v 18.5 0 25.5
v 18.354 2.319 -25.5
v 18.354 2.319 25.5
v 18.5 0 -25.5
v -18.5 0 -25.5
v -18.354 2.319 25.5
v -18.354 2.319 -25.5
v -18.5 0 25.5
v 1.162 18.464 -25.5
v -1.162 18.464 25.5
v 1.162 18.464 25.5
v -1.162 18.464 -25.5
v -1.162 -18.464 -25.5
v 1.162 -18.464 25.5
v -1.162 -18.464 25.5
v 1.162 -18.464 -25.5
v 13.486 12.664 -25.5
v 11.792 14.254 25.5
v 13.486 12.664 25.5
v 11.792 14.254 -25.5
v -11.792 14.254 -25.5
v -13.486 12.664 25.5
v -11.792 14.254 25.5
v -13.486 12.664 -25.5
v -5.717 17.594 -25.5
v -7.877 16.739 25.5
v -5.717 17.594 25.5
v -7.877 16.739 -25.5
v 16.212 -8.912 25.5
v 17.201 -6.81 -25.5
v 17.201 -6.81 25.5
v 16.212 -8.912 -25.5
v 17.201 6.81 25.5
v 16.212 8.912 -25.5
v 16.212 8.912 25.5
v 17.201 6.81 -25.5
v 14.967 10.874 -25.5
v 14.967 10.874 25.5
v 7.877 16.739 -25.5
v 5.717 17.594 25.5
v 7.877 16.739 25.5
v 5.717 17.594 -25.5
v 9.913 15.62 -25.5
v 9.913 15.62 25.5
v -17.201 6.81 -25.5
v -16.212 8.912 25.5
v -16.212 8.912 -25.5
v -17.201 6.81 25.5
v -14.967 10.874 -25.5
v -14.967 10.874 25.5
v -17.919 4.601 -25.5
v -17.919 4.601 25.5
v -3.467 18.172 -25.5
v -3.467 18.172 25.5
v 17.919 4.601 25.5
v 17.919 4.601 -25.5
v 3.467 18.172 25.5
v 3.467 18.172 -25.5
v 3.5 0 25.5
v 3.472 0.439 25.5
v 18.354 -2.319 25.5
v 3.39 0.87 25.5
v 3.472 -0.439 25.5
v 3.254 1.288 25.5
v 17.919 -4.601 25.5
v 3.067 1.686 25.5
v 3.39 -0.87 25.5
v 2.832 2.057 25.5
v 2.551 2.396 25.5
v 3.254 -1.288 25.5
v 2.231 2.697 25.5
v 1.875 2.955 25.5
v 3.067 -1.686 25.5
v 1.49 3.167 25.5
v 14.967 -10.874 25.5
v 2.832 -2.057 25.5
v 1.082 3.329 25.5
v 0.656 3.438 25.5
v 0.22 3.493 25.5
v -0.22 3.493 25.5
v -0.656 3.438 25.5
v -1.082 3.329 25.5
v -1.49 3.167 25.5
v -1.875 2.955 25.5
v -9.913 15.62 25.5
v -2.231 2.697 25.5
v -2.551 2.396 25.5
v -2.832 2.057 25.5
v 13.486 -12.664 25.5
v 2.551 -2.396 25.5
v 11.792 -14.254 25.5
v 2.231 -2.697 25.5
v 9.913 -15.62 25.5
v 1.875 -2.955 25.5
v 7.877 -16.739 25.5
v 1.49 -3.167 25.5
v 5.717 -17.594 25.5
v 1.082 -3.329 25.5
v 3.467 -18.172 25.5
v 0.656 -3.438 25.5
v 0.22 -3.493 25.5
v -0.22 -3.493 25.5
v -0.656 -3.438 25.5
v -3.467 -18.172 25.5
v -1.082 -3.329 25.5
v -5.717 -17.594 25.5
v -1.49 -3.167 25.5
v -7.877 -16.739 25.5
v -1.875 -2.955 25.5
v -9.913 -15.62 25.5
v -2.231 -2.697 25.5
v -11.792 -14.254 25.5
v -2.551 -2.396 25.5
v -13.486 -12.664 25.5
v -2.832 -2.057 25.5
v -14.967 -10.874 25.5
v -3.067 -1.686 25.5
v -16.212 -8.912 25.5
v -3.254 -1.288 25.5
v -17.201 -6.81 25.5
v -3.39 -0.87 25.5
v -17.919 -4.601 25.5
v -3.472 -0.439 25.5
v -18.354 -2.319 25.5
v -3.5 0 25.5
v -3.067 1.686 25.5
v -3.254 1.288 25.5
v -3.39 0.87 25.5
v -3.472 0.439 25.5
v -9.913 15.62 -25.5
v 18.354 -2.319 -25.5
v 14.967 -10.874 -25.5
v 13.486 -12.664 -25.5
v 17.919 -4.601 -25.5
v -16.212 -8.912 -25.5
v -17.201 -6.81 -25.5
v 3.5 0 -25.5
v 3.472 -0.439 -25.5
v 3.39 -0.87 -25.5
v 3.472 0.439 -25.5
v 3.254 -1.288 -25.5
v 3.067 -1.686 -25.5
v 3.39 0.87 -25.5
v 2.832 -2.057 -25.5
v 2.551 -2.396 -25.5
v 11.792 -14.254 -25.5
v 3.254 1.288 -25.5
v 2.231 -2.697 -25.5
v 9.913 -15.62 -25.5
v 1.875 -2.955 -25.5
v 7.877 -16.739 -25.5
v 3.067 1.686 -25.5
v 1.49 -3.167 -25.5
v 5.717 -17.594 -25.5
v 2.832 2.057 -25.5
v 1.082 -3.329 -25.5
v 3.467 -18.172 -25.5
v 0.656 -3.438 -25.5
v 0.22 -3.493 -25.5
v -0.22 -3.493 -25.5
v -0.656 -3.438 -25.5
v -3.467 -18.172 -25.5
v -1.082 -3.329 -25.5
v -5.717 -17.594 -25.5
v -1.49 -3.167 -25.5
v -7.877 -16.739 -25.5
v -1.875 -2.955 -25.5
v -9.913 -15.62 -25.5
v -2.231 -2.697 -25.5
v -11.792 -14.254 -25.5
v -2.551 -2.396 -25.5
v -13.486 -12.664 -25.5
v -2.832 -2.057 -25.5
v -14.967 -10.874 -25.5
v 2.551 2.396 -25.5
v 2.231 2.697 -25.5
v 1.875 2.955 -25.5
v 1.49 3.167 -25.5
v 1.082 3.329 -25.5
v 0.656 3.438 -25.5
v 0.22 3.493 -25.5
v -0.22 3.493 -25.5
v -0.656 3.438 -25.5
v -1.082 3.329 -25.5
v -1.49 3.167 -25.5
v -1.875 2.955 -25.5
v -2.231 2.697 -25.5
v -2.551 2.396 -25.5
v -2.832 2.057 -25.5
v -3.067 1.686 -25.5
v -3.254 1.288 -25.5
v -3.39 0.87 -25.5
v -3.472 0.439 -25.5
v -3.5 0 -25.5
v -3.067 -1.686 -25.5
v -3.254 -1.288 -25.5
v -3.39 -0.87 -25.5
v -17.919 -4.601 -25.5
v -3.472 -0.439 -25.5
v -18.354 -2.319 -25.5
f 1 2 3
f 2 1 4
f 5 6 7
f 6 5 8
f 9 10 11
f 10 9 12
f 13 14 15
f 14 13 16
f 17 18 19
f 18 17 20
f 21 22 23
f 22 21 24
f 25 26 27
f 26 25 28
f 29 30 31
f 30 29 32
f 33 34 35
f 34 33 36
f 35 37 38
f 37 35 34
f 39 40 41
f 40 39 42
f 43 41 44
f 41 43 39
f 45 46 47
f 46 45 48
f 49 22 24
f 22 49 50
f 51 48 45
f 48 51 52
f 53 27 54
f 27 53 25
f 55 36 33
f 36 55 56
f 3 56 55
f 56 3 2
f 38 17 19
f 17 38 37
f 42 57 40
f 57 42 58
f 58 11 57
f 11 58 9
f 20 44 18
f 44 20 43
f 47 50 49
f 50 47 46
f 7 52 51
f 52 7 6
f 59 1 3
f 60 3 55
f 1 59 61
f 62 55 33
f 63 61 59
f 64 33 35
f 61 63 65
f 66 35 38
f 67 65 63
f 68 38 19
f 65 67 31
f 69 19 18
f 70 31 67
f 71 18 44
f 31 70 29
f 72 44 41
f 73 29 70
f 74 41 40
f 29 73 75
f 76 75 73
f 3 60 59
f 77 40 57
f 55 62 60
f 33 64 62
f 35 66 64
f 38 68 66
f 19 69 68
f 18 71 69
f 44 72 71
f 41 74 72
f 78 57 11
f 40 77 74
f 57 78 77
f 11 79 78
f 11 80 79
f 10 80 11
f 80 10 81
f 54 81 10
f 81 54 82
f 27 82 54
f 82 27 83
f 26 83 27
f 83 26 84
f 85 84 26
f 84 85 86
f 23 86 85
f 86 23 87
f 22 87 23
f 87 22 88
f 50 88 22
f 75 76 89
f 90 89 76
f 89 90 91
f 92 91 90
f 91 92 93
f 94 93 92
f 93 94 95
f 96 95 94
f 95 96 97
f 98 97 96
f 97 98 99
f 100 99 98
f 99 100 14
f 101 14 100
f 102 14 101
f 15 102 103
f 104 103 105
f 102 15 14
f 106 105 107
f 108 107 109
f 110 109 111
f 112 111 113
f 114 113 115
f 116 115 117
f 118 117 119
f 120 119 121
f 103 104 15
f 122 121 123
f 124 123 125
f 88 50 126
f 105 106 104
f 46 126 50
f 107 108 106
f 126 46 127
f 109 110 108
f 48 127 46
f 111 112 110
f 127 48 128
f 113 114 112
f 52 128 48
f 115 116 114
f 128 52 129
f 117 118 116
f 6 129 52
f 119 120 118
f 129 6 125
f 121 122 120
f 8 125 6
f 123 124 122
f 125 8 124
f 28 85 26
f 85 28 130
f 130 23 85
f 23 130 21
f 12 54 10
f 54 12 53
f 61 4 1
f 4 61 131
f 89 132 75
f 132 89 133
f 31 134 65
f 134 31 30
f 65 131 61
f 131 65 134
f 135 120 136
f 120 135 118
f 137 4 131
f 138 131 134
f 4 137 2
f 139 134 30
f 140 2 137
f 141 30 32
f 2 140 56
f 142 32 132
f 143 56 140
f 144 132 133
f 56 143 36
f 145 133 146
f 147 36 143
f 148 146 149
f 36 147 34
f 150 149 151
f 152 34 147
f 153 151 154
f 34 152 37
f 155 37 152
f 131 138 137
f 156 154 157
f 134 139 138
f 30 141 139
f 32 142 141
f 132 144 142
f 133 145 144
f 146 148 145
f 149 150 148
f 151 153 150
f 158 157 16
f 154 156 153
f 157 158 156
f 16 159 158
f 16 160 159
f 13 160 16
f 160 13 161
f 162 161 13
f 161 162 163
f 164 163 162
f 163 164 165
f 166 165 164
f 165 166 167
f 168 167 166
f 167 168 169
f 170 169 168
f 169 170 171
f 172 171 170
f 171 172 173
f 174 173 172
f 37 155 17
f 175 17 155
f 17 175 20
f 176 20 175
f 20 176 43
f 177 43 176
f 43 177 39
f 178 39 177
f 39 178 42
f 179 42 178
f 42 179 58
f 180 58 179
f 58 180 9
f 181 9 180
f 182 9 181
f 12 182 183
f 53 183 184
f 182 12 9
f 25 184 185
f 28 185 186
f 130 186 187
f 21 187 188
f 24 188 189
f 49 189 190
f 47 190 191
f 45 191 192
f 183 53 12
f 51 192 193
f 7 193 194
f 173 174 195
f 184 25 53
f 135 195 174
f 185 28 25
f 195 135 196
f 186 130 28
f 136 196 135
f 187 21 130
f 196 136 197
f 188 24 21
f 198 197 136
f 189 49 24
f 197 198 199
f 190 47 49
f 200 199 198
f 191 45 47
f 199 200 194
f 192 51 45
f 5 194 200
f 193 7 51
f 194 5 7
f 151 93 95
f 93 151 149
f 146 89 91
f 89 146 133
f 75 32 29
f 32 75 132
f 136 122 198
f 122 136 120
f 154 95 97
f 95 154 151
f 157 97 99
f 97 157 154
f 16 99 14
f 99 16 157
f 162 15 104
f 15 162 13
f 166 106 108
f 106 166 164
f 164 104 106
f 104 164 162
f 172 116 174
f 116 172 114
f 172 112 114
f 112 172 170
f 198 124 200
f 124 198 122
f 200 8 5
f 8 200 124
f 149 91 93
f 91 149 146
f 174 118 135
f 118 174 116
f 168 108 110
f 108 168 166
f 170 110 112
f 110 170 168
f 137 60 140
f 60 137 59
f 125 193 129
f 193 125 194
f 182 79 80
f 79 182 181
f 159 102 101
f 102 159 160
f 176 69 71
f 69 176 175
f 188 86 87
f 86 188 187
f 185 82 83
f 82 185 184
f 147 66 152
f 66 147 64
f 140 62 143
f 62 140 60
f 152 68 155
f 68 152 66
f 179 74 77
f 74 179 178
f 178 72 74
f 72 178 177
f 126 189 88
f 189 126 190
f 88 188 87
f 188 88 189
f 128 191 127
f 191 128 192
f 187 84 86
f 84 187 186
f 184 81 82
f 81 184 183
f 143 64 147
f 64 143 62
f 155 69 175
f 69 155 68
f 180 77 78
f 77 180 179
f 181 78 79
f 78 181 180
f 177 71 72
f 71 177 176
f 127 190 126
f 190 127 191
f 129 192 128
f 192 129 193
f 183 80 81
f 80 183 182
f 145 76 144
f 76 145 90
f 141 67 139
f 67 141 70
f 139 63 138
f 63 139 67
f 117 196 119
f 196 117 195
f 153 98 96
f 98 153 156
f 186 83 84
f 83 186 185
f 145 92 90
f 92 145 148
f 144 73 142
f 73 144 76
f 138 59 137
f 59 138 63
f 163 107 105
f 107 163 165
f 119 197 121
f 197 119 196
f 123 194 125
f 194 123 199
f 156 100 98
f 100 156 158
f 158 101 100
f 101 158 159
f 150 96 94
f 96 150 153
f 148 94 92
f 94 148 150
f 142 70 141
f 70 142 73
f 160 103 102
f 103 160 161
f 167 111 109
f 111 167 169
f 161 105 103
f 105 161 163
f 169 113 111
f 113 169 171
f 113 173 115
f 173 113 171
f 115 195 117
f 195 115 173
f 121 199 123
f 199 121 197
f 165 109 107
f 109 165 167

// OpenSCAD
$fn = 50;


difference() {
	union() {
		translate(v = [0, 0, -25.5000000000]) {
			cylinder(h = 51, r = 18.5000000000);
		}
	}
	union() {
		translate(v = [0, 0, -100.0000000000]) {
			cylinder(h = 200, r = 3.5000000000);
		}
	}
}
